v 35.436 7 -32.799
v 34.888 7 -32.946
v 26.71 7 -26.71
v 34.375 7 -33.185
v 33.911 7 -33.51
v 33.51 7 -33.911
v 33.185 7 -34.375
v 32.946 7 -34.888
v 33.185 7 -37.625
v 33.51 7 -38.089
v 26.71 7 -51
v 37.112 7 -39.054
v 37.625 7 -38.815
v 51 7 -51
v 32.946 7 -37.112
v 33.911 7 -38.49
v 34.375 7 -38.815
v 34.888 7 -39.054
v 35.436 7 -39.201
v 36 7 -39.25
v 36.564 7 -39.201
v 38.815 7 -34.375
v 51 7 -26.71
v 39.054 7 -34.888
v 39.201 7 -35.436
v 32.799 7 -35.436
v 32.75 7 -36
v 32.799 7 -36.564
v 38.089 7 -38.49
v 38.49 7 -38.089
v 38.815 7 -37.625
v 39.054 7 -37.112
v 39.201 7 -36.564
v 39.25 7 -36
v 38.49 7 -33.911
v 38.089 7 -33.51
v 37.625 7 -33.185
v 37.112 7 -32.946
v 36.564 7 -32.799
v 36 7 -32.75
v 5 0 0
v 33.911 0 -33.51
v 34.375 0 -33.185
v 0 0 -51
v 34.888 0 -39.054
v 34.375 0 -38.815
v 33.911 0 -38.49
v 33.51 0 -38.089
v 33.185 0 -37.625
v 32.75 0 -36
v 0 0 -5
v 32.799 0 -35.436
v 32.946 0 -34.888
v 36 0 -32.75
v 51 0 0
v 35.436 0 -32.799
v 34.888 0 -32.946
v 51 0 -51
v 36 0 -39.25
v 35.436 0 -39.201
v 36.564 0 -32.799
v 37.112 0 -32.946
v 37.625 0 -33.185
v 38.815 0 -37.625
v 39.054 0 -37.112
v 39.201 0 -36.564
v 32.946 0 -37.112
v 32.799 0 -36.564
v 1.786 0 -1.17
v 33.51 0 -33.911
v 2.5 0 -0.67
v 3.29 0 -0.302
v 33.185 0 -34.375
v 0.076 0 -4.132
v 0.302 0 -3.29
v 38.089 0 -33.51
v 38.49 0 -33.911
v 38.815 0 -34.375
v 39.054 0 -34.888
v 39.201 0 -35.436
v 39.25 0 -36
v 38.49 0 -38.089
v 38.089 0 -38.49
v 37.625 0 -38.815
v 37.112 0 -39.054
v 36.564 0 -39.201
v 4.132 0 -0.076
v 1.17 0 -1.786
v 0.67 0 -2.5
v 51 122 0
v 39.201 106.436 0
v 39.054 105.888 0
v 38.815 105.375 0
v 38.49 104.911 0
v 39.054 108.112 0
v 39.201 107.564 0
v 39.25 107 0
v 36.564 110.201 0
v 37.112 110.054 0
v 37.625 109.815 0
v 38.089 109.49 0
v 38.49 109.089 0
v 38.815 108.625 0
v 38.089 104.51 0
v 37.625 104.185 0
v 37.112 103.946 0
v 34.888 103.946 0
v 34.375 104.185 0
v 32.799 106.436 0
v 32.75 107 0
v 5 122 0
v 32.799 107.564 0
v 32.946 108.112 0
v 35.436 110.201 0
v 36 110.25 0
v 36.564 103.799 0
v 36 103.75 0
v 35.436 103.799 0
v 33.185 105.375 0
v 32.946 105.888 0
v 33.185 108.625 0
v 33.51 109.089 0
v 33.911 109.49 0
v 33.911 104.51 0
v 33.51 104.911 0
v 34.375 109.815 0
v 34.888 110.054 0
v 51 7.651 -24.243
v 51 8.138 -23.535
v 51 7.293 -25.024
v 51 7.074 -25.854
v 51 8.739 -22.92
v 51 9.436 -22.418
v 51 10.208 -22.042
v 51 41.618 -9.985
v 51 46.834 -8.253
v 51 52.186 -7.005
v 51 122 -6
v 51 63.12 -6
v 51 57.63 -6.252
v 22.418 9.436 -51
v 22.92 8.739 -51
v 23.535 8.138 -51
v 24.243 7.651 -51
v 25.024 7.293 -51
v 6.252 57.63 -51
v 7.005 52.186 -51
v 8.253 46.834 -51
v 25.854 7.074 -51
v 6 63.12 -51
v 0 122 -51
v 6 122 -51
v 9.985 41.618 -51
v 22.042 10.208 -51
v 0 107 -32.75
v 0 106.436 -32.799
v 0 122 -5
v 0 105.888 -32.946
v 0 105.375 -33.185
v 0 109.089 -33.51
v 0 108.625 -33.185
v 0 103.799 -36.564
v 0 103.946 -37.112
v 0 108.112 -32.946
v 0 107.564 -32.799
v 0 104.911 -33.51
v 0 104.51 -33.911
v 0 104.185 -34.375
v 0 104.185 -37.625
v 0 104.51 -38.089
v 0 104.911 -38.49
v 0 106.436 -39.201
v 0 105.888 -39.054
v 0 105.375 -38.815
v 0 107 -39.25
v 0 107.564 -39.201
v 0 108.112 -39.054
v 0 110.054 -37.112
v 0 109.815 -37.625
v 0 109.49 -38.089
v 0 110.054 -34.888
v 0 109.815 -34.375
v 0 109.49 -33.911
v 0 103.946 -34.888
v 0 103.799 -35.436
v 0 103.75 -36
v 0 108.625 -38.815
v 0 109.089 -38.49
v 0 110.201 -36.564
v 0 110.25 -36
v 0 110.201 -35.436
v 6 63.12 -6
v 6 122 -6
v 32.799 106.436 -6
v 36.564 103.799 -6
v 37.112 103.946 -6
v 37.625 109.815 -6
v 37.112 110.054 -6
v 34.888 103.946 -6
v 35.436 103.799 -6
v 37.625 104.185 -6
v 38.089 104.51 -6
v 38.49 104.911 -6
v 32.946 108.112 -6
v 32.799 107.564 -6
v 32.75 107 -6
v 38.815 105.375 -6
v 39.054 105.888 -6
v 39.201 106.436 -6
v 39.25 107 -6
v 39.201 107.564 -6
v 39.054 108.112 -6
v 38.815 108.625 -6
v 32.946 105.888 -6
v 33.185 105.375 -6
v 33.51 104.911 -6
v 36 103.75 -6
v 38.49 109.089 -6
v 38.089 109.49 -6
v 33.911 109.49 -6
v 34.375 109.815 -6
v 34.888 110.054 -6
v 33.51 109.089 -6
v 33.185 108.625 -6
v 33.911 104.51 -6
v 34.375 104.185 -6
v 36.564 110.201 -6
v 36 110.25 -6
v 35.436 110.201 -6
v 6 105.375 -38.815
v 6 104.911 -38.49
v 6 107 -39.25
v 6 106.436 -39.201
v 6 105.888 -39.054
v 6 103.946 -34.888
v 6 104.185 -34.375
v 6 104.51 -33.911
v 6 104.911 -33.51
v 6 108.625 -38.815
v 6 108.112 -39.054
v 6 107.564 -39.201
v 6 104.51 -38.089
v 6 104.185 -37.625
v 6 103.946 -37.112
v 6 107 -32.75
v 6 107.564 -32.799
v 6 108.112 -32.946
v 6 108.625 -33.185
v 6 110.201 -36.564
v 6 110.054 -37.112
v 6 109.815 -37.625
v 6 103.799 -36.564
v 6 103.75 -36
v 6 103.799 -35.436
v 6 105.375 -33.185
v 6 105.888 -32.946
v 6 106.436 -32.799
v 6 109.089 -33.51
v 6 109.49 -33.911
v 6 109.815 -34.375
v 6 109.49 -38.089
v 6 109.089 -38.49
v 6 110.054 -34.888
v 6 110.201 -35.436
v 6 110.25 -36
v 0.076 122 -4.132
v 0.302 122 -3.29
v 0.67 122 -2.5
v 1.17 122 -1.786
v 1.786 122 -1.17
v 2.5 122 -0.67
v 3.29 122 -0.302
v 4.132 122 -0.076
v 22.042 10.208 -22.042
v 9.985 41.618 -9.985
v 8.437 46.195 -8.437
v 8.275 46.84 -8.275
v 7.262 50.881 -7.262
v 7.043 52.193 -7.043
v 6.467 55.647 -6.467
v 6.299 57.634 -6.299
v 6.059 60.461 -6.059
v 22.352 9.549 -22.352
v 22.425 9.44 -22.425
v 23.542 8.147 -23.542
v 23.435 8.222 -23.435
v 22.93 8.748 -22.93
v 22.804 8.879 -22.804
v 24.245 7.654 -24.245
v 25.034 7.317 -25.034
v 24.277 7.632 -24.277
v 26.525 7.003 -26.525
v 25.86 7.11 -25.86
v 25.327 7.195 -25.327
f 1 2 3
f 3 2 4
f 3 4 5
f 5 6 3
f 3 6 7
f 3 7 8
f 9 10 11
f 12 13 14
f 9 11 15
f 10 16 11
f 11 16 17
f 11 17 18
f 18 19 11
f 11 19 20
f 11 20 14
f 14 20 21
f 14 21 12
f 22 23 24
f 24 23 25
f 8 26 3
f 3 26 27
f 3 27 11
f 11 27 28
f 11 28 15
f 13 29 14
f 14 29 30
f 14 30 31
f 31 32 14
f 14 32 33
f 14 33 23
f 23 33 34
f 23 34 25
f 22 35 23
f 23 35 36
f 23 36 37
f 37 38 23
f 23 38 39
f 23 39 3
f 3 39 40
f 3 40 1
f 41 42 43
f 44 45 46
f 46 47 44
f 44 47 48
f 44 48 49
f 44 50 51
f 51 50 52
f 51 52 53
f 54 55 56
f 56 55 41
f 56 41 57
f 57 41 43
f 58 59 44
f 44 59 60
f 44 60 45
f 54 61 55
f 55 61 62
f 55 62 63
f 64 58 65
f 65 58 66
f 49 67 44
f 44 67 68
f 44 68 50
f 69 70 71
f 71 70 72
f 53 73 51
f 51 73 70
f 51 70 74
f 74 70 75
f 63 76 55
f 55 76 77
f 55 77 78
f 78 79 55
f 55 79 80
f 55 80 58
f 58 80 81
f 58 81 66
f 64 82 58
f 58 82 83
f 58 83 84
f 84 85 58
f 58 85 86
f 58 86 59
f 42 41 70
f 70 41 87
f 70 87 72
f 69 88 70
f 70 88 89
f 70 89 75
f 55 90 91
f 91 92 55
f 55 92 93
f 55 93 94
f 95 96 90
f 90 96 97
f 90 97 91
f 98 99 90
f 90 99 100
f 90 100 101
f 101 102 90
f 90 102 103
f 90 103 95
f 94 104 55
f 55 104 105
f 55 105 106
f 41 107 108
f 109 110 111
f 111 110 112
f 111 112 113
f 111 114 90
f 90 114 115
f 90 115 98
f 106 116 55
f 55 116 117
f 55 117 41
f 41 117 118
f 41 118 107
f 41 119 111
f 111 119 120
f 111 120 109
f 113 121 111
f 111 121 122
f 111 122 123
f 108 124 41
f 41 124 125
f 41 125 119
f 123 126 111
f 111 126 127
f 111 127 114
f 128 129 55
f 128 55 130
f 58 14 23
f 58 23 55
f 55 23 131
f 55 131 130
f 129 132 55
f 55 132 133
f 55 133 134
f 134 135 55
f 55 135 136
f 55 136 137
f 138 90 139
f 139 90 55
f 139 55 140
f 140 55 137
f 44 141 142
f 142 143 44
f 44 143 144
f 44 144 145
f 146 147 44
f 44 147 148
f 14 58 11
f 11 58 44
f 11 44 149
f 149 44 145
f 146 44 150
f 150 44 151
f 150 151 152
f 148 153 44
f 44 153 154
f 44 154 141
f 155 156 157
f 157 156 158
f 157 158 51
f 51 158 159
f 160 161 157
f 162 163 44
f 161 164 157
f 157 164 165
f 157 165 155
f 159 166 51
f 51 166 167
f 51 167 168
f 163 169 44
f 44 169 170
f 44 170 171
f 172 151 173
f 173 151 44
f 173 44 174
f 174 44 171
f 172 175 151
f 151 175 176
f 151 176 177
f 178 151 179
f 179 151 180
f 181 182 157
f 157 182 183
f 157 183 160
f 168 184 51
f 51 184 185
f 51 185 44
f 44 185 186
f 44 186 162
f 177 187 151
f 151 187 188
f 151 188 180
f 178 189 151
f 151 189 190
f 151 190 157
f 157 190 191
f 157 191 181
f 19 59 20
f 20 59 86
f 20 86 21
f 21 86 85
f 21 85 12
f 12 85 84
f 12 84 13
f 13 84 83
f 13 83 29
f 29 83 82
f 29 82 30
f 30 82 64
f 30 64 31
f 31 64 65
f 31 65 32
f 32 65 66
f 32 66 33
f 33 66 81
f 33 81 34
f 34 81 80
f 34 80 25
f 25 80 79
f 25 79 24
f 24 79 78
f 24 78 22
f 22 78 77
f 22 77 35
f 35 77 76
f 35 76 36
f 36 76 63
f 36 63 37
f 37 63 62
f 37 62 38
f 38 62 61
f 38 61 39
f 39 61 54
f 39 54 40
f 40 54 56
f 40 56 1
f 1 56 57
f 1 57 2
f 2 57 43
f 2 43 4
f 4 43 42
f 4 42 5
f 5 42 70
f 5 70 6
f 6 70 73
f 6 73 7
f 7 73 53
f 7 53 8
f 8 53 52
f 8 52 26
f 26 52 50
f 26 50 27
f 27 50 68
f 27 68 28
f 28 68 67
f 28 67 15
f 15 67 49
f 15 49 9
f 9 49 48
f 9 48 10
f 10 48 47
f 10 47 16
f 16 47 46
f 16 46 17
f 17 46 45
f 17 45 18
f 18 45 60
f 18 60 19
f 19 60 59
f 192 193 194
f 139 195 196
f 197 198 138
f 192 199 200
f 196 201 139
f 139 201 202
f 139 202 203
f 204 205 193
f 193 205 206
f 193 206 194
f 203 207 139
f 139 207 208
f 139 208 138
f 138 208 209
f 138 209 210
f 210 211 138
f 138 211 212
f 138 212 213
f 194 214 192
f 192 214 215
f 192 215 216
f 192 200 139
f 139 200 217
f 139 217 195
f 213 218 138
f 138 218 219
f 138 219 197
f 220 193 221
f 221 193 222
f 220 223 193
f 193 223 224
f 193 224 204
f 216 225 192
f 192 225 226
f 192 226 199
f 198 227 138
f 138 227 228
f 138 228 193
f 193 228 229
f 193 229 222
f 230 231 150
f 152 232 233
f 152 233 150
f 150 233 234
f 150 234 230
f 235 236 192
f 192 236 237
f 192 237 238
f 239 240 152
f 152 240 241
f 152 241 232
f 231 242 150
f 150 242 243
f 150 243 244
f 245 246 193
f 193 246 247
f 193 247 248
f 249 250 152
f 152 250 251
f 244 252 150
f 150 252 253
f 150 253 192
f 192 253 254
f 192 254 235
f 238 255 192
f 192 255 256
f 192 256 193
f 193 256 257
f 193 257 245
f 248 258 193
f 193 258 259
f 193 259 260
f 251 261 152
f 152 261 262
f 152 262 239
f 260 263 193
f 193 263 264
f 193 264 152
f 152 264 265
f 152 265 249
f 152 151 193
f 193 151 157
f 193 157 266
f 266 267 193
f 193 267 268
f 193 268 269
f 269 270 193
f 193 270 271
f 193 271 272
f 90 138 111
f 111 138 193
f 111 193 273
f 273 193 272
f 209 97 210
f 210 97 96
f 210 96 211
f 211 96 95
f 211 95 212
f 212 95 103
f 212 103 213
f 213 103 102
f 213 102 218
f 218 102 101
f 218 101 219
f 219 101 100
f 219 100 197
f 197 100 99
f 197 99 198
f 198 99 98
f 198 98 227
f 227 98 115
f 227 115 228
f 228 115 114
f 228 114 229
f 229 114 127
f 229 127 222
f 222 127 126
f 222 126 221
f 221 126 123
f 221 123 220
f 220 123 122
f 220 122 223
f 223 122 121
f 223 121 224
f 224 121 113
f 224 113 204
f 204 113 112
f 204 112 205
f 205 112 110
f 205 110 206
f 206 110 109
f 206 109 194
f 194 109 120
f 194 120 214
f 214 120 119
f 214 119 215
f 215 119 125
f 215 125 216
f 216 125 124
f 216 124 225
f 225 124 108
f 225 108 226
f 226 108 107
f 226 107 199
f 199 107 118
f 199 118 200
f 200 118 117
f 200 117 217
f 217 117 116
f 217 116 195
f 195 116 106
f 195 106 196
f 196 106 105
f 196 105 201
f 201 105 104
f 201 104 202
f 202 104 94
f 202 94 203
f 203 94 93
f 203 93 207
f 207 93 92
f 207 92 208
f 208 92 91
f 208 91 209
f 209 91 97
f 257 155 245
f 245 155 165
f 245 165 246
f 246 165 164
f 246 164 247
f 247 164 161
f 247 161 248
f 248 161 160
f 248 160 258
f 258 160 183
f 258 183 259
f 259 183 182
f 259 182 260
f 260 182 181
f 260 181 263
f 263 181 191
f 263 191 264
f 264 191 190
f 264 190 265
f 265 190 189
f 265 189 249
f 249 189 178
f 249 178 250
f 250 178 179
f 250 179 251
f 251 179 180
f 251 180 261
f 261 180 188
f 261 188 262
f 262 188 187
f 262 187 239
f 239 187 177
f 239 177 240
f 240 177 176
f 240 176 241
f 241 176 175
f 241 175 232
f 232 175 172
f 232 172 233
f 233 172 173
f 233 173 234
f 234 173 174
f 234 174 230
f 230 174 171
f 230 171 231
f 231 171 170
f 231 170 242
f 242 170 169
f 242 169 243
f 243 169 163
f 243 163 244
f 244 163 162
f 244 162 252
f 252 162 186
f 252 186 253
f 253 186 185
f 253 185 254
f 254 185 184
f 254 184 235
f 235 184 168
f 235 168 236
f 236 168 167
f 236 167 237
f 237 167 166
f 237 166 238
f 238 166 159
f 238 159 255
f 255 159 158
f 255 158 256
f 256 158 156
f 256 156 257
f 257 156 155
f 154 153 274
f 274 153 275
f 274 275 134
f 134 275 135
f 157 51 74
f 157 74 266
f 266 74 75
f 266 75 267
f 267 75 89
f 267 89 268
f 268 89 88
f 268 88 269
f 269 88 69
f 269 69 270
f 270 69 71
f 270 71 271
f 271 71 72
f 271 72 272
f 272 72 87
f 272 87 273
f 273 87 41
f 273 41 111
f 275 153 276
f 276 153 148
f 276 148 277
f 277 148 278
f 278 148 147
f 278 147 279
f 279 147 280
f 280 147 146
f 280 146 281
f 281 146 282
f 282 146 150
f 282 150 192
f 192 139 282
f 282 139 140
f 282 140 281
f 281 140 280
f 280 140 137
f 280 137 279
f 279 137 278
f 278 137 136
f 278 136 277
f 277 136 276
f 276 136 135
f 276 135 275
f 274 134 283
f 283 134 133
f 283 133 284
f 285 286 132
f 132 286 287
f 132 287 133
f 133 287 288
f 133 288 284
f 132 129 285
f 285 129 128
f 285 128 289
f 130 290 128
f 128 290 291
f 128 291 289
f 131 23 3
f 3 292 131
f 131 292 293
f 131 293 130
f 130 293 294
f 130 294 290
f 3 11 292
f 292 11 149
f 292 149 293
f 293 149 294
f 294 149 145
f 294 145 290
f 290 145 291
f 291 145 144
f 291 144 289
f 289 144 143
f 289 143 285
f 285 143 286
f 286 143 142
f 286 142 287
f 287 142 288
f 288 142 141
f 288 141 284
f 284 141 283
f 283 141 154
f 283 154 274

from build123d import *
from OCP.BRepFilletAPI import BRepFilletAPI_MakeChamfer

# Parameters (mm, degrees)
SKETCH2_W                      = 51
SKETCH2_H                      = 51
SKETCH2_R                      = 3.25
BOSS_EXTRUDE2_DEPTH            = 7
BOSS_EXTRUDE3_DEPTH            = 115
F_6_5_6_5_DIAMETER_HOLE1_D     = 6.5
F_6_5_6_5_DIAMETER_HOLE1_DEPTH = 6
F_6_5_6_5_DIAMETER_HOLE1_TIP   = 1.952797012
F_6_5_6_5_DIAMETER_HOLE2_D     = 6.5
F_6_5_6_5_DIAMETER_HOLE2_DEPTH = 6
F_6_5_6_5_DIAMETER_HOLE2_TIP   = 1.952797012
CHAMFER1_SIZE                  = 45
CHAMFER1_SIZE2                 = 17.273881577
FILLET1_R                      = 5
FILLET2_R                      = 60
FILLET3_R                      = 5


with BuildPart() as part:
    # Sketch2 → Boss-Extrude2 (new body)
    with BuildSketch(Plane(origin=(0, 0, 0), x_dir=(1, 0, 0), z_dir=(0, 1, 0))):
        with Locations((25.5, 25.5)):
            Rectangle(SKETCH2_W, SKETCH2_H)
        with Locations(Location((36, 36, 0), (0, 0, 270))):
            Circle(SKETCH2_R, mode=Mode.SUBTRACT)
    extrude(amount=BOSS_EXTRUDE2_DEPTH)

    # Sketch3 → Boss-Extrude3 (add)
    with BuildSketch(Plane(origin=(0, 7, 0), x_dir=(1, 0, 0), z_dir=(0, 1, 0))):
        Polygon((51, 0), (0, 0), (0, 51), (6, 51), (6, 6), (51, 6), align=None)
    extrude(amount=BOSS_EXTRUDE3_DEPTH)

    # Ø6.5 (6.5) Diameter Hole1
    with Locations(Plane.XY):
        with Locations((36, 107)):
            Hole(F_6_5_6_5_DIAMETER_HOLE1_D / 2, depth=F_6_5_6_5_DIAMETER_HOLE1_DEPTH)
            with Locations((0, 0, -(F_6_5_6_5_DIAMETER_HOLE1_DEPTH + F_6_5_6_5_DIAMETER_HOLE1_TIP / 2))):  # 118° drill point
                Cone(0, F_6_5_6_5_DIAMETER_HOLE1_D / 2, F_6_5_6_5_DIAMETER_HOLE1_TIP, mode=Mode.SUBTRACT)

    # Ø6.5 (6.5) Diameter Hole2
    with Locations(Plane.ZY):
        with Locations((-36, 107)):
            Hole(F_6_5_6_5_DIAMETER_HOLE2_D / 2, depth=F_6_5_6_5_DIAMETER_HOLE2_DEPTH)
            with Locations((0, 0, -(F_6_5_6_5_DIAMETER_HOLE2_DEPTH + F_6_5_6_5_DIAMETER_HOLE2_TIP / 2))):  # 118° drill point
                Cone(0, F_6_5_6_5_DIAMETER_HOLE2_D / 2, F_6_5_6_5_DIAMETER_HOLE2_TIP, mode=Mode.SUBTRACT)

    # Chamfer1: one chamfer whose edges measure the first distance from different faces: ONE call of the kernel's chamfer builder (chamfer() names one face for all edges)
    chamfer1_edges_1 = [part.edges().sort_by_distance(p)[0] for p in [
        (28.5, 7, -6),
    ]]
    chamfer1_side_1 = [part.faces().sort_by_distance(p)[0] for p in [
        (28.451598229, 64.2257233, -6),
    ]]
    chamfer1_edges_2 = [part.edges().sort_by_distance(p)[0] for p in [
        (6, 7, -28.5),
    ]]
    chamfer1_side_2 = [part.faces().sort_by_distance(p)[0] for p in [
        (6, 64.2257233, -28.451598229),
    ]]
    chamfer1 = BRepFilletAPI_MakeChamfer(part.part.solid().wrapped)
    for e in chamfer1_edges_1:
        chamfer1.Add(CHAMFER1_SIZE, CHAMFER1_SIZE2, e.wrapped, chamfer1_side_1[0].wrapped)  # the first distance lies on this face
    for e in chamfer1_edges_2:
        chamfer1.Add(CHAMFER1_SIZE, CHAMFER1_SIZE2, e.wrapped, chamfer1_side_2[0].wrapped)  # the first distance lies on this face
    add(Compound.cast(chamfer1.Shape()), mode=Mode.REPLACE)

    # Fillet1
    fillet1_edges = [part.edges().sort_by_distance(p)[0] for p in [
        (0, 61, 0),
    ]]
    fillet(fillet1_edges, radius=FILLET1_R)

    # Fillet2
    fillet2_edges = [part.edges().sort_by_distance(p)[0] for p in [
        (28.5, 52, -6),
        (6, 52, -28.5),
    ]]
    fillet(fillet2_edges, radius=FILLET2_R)

    # Fillet3
    fillet3_edges = [part.edges().sort_by_distance(p)[0] for p in [
        (23.273881577, 7, -37.136940788),
        (37.136940788, 7, -23.273881577),
    ]]
    fillet(fillet3_edges, radius=FILLET3_R)


solid = part.part
